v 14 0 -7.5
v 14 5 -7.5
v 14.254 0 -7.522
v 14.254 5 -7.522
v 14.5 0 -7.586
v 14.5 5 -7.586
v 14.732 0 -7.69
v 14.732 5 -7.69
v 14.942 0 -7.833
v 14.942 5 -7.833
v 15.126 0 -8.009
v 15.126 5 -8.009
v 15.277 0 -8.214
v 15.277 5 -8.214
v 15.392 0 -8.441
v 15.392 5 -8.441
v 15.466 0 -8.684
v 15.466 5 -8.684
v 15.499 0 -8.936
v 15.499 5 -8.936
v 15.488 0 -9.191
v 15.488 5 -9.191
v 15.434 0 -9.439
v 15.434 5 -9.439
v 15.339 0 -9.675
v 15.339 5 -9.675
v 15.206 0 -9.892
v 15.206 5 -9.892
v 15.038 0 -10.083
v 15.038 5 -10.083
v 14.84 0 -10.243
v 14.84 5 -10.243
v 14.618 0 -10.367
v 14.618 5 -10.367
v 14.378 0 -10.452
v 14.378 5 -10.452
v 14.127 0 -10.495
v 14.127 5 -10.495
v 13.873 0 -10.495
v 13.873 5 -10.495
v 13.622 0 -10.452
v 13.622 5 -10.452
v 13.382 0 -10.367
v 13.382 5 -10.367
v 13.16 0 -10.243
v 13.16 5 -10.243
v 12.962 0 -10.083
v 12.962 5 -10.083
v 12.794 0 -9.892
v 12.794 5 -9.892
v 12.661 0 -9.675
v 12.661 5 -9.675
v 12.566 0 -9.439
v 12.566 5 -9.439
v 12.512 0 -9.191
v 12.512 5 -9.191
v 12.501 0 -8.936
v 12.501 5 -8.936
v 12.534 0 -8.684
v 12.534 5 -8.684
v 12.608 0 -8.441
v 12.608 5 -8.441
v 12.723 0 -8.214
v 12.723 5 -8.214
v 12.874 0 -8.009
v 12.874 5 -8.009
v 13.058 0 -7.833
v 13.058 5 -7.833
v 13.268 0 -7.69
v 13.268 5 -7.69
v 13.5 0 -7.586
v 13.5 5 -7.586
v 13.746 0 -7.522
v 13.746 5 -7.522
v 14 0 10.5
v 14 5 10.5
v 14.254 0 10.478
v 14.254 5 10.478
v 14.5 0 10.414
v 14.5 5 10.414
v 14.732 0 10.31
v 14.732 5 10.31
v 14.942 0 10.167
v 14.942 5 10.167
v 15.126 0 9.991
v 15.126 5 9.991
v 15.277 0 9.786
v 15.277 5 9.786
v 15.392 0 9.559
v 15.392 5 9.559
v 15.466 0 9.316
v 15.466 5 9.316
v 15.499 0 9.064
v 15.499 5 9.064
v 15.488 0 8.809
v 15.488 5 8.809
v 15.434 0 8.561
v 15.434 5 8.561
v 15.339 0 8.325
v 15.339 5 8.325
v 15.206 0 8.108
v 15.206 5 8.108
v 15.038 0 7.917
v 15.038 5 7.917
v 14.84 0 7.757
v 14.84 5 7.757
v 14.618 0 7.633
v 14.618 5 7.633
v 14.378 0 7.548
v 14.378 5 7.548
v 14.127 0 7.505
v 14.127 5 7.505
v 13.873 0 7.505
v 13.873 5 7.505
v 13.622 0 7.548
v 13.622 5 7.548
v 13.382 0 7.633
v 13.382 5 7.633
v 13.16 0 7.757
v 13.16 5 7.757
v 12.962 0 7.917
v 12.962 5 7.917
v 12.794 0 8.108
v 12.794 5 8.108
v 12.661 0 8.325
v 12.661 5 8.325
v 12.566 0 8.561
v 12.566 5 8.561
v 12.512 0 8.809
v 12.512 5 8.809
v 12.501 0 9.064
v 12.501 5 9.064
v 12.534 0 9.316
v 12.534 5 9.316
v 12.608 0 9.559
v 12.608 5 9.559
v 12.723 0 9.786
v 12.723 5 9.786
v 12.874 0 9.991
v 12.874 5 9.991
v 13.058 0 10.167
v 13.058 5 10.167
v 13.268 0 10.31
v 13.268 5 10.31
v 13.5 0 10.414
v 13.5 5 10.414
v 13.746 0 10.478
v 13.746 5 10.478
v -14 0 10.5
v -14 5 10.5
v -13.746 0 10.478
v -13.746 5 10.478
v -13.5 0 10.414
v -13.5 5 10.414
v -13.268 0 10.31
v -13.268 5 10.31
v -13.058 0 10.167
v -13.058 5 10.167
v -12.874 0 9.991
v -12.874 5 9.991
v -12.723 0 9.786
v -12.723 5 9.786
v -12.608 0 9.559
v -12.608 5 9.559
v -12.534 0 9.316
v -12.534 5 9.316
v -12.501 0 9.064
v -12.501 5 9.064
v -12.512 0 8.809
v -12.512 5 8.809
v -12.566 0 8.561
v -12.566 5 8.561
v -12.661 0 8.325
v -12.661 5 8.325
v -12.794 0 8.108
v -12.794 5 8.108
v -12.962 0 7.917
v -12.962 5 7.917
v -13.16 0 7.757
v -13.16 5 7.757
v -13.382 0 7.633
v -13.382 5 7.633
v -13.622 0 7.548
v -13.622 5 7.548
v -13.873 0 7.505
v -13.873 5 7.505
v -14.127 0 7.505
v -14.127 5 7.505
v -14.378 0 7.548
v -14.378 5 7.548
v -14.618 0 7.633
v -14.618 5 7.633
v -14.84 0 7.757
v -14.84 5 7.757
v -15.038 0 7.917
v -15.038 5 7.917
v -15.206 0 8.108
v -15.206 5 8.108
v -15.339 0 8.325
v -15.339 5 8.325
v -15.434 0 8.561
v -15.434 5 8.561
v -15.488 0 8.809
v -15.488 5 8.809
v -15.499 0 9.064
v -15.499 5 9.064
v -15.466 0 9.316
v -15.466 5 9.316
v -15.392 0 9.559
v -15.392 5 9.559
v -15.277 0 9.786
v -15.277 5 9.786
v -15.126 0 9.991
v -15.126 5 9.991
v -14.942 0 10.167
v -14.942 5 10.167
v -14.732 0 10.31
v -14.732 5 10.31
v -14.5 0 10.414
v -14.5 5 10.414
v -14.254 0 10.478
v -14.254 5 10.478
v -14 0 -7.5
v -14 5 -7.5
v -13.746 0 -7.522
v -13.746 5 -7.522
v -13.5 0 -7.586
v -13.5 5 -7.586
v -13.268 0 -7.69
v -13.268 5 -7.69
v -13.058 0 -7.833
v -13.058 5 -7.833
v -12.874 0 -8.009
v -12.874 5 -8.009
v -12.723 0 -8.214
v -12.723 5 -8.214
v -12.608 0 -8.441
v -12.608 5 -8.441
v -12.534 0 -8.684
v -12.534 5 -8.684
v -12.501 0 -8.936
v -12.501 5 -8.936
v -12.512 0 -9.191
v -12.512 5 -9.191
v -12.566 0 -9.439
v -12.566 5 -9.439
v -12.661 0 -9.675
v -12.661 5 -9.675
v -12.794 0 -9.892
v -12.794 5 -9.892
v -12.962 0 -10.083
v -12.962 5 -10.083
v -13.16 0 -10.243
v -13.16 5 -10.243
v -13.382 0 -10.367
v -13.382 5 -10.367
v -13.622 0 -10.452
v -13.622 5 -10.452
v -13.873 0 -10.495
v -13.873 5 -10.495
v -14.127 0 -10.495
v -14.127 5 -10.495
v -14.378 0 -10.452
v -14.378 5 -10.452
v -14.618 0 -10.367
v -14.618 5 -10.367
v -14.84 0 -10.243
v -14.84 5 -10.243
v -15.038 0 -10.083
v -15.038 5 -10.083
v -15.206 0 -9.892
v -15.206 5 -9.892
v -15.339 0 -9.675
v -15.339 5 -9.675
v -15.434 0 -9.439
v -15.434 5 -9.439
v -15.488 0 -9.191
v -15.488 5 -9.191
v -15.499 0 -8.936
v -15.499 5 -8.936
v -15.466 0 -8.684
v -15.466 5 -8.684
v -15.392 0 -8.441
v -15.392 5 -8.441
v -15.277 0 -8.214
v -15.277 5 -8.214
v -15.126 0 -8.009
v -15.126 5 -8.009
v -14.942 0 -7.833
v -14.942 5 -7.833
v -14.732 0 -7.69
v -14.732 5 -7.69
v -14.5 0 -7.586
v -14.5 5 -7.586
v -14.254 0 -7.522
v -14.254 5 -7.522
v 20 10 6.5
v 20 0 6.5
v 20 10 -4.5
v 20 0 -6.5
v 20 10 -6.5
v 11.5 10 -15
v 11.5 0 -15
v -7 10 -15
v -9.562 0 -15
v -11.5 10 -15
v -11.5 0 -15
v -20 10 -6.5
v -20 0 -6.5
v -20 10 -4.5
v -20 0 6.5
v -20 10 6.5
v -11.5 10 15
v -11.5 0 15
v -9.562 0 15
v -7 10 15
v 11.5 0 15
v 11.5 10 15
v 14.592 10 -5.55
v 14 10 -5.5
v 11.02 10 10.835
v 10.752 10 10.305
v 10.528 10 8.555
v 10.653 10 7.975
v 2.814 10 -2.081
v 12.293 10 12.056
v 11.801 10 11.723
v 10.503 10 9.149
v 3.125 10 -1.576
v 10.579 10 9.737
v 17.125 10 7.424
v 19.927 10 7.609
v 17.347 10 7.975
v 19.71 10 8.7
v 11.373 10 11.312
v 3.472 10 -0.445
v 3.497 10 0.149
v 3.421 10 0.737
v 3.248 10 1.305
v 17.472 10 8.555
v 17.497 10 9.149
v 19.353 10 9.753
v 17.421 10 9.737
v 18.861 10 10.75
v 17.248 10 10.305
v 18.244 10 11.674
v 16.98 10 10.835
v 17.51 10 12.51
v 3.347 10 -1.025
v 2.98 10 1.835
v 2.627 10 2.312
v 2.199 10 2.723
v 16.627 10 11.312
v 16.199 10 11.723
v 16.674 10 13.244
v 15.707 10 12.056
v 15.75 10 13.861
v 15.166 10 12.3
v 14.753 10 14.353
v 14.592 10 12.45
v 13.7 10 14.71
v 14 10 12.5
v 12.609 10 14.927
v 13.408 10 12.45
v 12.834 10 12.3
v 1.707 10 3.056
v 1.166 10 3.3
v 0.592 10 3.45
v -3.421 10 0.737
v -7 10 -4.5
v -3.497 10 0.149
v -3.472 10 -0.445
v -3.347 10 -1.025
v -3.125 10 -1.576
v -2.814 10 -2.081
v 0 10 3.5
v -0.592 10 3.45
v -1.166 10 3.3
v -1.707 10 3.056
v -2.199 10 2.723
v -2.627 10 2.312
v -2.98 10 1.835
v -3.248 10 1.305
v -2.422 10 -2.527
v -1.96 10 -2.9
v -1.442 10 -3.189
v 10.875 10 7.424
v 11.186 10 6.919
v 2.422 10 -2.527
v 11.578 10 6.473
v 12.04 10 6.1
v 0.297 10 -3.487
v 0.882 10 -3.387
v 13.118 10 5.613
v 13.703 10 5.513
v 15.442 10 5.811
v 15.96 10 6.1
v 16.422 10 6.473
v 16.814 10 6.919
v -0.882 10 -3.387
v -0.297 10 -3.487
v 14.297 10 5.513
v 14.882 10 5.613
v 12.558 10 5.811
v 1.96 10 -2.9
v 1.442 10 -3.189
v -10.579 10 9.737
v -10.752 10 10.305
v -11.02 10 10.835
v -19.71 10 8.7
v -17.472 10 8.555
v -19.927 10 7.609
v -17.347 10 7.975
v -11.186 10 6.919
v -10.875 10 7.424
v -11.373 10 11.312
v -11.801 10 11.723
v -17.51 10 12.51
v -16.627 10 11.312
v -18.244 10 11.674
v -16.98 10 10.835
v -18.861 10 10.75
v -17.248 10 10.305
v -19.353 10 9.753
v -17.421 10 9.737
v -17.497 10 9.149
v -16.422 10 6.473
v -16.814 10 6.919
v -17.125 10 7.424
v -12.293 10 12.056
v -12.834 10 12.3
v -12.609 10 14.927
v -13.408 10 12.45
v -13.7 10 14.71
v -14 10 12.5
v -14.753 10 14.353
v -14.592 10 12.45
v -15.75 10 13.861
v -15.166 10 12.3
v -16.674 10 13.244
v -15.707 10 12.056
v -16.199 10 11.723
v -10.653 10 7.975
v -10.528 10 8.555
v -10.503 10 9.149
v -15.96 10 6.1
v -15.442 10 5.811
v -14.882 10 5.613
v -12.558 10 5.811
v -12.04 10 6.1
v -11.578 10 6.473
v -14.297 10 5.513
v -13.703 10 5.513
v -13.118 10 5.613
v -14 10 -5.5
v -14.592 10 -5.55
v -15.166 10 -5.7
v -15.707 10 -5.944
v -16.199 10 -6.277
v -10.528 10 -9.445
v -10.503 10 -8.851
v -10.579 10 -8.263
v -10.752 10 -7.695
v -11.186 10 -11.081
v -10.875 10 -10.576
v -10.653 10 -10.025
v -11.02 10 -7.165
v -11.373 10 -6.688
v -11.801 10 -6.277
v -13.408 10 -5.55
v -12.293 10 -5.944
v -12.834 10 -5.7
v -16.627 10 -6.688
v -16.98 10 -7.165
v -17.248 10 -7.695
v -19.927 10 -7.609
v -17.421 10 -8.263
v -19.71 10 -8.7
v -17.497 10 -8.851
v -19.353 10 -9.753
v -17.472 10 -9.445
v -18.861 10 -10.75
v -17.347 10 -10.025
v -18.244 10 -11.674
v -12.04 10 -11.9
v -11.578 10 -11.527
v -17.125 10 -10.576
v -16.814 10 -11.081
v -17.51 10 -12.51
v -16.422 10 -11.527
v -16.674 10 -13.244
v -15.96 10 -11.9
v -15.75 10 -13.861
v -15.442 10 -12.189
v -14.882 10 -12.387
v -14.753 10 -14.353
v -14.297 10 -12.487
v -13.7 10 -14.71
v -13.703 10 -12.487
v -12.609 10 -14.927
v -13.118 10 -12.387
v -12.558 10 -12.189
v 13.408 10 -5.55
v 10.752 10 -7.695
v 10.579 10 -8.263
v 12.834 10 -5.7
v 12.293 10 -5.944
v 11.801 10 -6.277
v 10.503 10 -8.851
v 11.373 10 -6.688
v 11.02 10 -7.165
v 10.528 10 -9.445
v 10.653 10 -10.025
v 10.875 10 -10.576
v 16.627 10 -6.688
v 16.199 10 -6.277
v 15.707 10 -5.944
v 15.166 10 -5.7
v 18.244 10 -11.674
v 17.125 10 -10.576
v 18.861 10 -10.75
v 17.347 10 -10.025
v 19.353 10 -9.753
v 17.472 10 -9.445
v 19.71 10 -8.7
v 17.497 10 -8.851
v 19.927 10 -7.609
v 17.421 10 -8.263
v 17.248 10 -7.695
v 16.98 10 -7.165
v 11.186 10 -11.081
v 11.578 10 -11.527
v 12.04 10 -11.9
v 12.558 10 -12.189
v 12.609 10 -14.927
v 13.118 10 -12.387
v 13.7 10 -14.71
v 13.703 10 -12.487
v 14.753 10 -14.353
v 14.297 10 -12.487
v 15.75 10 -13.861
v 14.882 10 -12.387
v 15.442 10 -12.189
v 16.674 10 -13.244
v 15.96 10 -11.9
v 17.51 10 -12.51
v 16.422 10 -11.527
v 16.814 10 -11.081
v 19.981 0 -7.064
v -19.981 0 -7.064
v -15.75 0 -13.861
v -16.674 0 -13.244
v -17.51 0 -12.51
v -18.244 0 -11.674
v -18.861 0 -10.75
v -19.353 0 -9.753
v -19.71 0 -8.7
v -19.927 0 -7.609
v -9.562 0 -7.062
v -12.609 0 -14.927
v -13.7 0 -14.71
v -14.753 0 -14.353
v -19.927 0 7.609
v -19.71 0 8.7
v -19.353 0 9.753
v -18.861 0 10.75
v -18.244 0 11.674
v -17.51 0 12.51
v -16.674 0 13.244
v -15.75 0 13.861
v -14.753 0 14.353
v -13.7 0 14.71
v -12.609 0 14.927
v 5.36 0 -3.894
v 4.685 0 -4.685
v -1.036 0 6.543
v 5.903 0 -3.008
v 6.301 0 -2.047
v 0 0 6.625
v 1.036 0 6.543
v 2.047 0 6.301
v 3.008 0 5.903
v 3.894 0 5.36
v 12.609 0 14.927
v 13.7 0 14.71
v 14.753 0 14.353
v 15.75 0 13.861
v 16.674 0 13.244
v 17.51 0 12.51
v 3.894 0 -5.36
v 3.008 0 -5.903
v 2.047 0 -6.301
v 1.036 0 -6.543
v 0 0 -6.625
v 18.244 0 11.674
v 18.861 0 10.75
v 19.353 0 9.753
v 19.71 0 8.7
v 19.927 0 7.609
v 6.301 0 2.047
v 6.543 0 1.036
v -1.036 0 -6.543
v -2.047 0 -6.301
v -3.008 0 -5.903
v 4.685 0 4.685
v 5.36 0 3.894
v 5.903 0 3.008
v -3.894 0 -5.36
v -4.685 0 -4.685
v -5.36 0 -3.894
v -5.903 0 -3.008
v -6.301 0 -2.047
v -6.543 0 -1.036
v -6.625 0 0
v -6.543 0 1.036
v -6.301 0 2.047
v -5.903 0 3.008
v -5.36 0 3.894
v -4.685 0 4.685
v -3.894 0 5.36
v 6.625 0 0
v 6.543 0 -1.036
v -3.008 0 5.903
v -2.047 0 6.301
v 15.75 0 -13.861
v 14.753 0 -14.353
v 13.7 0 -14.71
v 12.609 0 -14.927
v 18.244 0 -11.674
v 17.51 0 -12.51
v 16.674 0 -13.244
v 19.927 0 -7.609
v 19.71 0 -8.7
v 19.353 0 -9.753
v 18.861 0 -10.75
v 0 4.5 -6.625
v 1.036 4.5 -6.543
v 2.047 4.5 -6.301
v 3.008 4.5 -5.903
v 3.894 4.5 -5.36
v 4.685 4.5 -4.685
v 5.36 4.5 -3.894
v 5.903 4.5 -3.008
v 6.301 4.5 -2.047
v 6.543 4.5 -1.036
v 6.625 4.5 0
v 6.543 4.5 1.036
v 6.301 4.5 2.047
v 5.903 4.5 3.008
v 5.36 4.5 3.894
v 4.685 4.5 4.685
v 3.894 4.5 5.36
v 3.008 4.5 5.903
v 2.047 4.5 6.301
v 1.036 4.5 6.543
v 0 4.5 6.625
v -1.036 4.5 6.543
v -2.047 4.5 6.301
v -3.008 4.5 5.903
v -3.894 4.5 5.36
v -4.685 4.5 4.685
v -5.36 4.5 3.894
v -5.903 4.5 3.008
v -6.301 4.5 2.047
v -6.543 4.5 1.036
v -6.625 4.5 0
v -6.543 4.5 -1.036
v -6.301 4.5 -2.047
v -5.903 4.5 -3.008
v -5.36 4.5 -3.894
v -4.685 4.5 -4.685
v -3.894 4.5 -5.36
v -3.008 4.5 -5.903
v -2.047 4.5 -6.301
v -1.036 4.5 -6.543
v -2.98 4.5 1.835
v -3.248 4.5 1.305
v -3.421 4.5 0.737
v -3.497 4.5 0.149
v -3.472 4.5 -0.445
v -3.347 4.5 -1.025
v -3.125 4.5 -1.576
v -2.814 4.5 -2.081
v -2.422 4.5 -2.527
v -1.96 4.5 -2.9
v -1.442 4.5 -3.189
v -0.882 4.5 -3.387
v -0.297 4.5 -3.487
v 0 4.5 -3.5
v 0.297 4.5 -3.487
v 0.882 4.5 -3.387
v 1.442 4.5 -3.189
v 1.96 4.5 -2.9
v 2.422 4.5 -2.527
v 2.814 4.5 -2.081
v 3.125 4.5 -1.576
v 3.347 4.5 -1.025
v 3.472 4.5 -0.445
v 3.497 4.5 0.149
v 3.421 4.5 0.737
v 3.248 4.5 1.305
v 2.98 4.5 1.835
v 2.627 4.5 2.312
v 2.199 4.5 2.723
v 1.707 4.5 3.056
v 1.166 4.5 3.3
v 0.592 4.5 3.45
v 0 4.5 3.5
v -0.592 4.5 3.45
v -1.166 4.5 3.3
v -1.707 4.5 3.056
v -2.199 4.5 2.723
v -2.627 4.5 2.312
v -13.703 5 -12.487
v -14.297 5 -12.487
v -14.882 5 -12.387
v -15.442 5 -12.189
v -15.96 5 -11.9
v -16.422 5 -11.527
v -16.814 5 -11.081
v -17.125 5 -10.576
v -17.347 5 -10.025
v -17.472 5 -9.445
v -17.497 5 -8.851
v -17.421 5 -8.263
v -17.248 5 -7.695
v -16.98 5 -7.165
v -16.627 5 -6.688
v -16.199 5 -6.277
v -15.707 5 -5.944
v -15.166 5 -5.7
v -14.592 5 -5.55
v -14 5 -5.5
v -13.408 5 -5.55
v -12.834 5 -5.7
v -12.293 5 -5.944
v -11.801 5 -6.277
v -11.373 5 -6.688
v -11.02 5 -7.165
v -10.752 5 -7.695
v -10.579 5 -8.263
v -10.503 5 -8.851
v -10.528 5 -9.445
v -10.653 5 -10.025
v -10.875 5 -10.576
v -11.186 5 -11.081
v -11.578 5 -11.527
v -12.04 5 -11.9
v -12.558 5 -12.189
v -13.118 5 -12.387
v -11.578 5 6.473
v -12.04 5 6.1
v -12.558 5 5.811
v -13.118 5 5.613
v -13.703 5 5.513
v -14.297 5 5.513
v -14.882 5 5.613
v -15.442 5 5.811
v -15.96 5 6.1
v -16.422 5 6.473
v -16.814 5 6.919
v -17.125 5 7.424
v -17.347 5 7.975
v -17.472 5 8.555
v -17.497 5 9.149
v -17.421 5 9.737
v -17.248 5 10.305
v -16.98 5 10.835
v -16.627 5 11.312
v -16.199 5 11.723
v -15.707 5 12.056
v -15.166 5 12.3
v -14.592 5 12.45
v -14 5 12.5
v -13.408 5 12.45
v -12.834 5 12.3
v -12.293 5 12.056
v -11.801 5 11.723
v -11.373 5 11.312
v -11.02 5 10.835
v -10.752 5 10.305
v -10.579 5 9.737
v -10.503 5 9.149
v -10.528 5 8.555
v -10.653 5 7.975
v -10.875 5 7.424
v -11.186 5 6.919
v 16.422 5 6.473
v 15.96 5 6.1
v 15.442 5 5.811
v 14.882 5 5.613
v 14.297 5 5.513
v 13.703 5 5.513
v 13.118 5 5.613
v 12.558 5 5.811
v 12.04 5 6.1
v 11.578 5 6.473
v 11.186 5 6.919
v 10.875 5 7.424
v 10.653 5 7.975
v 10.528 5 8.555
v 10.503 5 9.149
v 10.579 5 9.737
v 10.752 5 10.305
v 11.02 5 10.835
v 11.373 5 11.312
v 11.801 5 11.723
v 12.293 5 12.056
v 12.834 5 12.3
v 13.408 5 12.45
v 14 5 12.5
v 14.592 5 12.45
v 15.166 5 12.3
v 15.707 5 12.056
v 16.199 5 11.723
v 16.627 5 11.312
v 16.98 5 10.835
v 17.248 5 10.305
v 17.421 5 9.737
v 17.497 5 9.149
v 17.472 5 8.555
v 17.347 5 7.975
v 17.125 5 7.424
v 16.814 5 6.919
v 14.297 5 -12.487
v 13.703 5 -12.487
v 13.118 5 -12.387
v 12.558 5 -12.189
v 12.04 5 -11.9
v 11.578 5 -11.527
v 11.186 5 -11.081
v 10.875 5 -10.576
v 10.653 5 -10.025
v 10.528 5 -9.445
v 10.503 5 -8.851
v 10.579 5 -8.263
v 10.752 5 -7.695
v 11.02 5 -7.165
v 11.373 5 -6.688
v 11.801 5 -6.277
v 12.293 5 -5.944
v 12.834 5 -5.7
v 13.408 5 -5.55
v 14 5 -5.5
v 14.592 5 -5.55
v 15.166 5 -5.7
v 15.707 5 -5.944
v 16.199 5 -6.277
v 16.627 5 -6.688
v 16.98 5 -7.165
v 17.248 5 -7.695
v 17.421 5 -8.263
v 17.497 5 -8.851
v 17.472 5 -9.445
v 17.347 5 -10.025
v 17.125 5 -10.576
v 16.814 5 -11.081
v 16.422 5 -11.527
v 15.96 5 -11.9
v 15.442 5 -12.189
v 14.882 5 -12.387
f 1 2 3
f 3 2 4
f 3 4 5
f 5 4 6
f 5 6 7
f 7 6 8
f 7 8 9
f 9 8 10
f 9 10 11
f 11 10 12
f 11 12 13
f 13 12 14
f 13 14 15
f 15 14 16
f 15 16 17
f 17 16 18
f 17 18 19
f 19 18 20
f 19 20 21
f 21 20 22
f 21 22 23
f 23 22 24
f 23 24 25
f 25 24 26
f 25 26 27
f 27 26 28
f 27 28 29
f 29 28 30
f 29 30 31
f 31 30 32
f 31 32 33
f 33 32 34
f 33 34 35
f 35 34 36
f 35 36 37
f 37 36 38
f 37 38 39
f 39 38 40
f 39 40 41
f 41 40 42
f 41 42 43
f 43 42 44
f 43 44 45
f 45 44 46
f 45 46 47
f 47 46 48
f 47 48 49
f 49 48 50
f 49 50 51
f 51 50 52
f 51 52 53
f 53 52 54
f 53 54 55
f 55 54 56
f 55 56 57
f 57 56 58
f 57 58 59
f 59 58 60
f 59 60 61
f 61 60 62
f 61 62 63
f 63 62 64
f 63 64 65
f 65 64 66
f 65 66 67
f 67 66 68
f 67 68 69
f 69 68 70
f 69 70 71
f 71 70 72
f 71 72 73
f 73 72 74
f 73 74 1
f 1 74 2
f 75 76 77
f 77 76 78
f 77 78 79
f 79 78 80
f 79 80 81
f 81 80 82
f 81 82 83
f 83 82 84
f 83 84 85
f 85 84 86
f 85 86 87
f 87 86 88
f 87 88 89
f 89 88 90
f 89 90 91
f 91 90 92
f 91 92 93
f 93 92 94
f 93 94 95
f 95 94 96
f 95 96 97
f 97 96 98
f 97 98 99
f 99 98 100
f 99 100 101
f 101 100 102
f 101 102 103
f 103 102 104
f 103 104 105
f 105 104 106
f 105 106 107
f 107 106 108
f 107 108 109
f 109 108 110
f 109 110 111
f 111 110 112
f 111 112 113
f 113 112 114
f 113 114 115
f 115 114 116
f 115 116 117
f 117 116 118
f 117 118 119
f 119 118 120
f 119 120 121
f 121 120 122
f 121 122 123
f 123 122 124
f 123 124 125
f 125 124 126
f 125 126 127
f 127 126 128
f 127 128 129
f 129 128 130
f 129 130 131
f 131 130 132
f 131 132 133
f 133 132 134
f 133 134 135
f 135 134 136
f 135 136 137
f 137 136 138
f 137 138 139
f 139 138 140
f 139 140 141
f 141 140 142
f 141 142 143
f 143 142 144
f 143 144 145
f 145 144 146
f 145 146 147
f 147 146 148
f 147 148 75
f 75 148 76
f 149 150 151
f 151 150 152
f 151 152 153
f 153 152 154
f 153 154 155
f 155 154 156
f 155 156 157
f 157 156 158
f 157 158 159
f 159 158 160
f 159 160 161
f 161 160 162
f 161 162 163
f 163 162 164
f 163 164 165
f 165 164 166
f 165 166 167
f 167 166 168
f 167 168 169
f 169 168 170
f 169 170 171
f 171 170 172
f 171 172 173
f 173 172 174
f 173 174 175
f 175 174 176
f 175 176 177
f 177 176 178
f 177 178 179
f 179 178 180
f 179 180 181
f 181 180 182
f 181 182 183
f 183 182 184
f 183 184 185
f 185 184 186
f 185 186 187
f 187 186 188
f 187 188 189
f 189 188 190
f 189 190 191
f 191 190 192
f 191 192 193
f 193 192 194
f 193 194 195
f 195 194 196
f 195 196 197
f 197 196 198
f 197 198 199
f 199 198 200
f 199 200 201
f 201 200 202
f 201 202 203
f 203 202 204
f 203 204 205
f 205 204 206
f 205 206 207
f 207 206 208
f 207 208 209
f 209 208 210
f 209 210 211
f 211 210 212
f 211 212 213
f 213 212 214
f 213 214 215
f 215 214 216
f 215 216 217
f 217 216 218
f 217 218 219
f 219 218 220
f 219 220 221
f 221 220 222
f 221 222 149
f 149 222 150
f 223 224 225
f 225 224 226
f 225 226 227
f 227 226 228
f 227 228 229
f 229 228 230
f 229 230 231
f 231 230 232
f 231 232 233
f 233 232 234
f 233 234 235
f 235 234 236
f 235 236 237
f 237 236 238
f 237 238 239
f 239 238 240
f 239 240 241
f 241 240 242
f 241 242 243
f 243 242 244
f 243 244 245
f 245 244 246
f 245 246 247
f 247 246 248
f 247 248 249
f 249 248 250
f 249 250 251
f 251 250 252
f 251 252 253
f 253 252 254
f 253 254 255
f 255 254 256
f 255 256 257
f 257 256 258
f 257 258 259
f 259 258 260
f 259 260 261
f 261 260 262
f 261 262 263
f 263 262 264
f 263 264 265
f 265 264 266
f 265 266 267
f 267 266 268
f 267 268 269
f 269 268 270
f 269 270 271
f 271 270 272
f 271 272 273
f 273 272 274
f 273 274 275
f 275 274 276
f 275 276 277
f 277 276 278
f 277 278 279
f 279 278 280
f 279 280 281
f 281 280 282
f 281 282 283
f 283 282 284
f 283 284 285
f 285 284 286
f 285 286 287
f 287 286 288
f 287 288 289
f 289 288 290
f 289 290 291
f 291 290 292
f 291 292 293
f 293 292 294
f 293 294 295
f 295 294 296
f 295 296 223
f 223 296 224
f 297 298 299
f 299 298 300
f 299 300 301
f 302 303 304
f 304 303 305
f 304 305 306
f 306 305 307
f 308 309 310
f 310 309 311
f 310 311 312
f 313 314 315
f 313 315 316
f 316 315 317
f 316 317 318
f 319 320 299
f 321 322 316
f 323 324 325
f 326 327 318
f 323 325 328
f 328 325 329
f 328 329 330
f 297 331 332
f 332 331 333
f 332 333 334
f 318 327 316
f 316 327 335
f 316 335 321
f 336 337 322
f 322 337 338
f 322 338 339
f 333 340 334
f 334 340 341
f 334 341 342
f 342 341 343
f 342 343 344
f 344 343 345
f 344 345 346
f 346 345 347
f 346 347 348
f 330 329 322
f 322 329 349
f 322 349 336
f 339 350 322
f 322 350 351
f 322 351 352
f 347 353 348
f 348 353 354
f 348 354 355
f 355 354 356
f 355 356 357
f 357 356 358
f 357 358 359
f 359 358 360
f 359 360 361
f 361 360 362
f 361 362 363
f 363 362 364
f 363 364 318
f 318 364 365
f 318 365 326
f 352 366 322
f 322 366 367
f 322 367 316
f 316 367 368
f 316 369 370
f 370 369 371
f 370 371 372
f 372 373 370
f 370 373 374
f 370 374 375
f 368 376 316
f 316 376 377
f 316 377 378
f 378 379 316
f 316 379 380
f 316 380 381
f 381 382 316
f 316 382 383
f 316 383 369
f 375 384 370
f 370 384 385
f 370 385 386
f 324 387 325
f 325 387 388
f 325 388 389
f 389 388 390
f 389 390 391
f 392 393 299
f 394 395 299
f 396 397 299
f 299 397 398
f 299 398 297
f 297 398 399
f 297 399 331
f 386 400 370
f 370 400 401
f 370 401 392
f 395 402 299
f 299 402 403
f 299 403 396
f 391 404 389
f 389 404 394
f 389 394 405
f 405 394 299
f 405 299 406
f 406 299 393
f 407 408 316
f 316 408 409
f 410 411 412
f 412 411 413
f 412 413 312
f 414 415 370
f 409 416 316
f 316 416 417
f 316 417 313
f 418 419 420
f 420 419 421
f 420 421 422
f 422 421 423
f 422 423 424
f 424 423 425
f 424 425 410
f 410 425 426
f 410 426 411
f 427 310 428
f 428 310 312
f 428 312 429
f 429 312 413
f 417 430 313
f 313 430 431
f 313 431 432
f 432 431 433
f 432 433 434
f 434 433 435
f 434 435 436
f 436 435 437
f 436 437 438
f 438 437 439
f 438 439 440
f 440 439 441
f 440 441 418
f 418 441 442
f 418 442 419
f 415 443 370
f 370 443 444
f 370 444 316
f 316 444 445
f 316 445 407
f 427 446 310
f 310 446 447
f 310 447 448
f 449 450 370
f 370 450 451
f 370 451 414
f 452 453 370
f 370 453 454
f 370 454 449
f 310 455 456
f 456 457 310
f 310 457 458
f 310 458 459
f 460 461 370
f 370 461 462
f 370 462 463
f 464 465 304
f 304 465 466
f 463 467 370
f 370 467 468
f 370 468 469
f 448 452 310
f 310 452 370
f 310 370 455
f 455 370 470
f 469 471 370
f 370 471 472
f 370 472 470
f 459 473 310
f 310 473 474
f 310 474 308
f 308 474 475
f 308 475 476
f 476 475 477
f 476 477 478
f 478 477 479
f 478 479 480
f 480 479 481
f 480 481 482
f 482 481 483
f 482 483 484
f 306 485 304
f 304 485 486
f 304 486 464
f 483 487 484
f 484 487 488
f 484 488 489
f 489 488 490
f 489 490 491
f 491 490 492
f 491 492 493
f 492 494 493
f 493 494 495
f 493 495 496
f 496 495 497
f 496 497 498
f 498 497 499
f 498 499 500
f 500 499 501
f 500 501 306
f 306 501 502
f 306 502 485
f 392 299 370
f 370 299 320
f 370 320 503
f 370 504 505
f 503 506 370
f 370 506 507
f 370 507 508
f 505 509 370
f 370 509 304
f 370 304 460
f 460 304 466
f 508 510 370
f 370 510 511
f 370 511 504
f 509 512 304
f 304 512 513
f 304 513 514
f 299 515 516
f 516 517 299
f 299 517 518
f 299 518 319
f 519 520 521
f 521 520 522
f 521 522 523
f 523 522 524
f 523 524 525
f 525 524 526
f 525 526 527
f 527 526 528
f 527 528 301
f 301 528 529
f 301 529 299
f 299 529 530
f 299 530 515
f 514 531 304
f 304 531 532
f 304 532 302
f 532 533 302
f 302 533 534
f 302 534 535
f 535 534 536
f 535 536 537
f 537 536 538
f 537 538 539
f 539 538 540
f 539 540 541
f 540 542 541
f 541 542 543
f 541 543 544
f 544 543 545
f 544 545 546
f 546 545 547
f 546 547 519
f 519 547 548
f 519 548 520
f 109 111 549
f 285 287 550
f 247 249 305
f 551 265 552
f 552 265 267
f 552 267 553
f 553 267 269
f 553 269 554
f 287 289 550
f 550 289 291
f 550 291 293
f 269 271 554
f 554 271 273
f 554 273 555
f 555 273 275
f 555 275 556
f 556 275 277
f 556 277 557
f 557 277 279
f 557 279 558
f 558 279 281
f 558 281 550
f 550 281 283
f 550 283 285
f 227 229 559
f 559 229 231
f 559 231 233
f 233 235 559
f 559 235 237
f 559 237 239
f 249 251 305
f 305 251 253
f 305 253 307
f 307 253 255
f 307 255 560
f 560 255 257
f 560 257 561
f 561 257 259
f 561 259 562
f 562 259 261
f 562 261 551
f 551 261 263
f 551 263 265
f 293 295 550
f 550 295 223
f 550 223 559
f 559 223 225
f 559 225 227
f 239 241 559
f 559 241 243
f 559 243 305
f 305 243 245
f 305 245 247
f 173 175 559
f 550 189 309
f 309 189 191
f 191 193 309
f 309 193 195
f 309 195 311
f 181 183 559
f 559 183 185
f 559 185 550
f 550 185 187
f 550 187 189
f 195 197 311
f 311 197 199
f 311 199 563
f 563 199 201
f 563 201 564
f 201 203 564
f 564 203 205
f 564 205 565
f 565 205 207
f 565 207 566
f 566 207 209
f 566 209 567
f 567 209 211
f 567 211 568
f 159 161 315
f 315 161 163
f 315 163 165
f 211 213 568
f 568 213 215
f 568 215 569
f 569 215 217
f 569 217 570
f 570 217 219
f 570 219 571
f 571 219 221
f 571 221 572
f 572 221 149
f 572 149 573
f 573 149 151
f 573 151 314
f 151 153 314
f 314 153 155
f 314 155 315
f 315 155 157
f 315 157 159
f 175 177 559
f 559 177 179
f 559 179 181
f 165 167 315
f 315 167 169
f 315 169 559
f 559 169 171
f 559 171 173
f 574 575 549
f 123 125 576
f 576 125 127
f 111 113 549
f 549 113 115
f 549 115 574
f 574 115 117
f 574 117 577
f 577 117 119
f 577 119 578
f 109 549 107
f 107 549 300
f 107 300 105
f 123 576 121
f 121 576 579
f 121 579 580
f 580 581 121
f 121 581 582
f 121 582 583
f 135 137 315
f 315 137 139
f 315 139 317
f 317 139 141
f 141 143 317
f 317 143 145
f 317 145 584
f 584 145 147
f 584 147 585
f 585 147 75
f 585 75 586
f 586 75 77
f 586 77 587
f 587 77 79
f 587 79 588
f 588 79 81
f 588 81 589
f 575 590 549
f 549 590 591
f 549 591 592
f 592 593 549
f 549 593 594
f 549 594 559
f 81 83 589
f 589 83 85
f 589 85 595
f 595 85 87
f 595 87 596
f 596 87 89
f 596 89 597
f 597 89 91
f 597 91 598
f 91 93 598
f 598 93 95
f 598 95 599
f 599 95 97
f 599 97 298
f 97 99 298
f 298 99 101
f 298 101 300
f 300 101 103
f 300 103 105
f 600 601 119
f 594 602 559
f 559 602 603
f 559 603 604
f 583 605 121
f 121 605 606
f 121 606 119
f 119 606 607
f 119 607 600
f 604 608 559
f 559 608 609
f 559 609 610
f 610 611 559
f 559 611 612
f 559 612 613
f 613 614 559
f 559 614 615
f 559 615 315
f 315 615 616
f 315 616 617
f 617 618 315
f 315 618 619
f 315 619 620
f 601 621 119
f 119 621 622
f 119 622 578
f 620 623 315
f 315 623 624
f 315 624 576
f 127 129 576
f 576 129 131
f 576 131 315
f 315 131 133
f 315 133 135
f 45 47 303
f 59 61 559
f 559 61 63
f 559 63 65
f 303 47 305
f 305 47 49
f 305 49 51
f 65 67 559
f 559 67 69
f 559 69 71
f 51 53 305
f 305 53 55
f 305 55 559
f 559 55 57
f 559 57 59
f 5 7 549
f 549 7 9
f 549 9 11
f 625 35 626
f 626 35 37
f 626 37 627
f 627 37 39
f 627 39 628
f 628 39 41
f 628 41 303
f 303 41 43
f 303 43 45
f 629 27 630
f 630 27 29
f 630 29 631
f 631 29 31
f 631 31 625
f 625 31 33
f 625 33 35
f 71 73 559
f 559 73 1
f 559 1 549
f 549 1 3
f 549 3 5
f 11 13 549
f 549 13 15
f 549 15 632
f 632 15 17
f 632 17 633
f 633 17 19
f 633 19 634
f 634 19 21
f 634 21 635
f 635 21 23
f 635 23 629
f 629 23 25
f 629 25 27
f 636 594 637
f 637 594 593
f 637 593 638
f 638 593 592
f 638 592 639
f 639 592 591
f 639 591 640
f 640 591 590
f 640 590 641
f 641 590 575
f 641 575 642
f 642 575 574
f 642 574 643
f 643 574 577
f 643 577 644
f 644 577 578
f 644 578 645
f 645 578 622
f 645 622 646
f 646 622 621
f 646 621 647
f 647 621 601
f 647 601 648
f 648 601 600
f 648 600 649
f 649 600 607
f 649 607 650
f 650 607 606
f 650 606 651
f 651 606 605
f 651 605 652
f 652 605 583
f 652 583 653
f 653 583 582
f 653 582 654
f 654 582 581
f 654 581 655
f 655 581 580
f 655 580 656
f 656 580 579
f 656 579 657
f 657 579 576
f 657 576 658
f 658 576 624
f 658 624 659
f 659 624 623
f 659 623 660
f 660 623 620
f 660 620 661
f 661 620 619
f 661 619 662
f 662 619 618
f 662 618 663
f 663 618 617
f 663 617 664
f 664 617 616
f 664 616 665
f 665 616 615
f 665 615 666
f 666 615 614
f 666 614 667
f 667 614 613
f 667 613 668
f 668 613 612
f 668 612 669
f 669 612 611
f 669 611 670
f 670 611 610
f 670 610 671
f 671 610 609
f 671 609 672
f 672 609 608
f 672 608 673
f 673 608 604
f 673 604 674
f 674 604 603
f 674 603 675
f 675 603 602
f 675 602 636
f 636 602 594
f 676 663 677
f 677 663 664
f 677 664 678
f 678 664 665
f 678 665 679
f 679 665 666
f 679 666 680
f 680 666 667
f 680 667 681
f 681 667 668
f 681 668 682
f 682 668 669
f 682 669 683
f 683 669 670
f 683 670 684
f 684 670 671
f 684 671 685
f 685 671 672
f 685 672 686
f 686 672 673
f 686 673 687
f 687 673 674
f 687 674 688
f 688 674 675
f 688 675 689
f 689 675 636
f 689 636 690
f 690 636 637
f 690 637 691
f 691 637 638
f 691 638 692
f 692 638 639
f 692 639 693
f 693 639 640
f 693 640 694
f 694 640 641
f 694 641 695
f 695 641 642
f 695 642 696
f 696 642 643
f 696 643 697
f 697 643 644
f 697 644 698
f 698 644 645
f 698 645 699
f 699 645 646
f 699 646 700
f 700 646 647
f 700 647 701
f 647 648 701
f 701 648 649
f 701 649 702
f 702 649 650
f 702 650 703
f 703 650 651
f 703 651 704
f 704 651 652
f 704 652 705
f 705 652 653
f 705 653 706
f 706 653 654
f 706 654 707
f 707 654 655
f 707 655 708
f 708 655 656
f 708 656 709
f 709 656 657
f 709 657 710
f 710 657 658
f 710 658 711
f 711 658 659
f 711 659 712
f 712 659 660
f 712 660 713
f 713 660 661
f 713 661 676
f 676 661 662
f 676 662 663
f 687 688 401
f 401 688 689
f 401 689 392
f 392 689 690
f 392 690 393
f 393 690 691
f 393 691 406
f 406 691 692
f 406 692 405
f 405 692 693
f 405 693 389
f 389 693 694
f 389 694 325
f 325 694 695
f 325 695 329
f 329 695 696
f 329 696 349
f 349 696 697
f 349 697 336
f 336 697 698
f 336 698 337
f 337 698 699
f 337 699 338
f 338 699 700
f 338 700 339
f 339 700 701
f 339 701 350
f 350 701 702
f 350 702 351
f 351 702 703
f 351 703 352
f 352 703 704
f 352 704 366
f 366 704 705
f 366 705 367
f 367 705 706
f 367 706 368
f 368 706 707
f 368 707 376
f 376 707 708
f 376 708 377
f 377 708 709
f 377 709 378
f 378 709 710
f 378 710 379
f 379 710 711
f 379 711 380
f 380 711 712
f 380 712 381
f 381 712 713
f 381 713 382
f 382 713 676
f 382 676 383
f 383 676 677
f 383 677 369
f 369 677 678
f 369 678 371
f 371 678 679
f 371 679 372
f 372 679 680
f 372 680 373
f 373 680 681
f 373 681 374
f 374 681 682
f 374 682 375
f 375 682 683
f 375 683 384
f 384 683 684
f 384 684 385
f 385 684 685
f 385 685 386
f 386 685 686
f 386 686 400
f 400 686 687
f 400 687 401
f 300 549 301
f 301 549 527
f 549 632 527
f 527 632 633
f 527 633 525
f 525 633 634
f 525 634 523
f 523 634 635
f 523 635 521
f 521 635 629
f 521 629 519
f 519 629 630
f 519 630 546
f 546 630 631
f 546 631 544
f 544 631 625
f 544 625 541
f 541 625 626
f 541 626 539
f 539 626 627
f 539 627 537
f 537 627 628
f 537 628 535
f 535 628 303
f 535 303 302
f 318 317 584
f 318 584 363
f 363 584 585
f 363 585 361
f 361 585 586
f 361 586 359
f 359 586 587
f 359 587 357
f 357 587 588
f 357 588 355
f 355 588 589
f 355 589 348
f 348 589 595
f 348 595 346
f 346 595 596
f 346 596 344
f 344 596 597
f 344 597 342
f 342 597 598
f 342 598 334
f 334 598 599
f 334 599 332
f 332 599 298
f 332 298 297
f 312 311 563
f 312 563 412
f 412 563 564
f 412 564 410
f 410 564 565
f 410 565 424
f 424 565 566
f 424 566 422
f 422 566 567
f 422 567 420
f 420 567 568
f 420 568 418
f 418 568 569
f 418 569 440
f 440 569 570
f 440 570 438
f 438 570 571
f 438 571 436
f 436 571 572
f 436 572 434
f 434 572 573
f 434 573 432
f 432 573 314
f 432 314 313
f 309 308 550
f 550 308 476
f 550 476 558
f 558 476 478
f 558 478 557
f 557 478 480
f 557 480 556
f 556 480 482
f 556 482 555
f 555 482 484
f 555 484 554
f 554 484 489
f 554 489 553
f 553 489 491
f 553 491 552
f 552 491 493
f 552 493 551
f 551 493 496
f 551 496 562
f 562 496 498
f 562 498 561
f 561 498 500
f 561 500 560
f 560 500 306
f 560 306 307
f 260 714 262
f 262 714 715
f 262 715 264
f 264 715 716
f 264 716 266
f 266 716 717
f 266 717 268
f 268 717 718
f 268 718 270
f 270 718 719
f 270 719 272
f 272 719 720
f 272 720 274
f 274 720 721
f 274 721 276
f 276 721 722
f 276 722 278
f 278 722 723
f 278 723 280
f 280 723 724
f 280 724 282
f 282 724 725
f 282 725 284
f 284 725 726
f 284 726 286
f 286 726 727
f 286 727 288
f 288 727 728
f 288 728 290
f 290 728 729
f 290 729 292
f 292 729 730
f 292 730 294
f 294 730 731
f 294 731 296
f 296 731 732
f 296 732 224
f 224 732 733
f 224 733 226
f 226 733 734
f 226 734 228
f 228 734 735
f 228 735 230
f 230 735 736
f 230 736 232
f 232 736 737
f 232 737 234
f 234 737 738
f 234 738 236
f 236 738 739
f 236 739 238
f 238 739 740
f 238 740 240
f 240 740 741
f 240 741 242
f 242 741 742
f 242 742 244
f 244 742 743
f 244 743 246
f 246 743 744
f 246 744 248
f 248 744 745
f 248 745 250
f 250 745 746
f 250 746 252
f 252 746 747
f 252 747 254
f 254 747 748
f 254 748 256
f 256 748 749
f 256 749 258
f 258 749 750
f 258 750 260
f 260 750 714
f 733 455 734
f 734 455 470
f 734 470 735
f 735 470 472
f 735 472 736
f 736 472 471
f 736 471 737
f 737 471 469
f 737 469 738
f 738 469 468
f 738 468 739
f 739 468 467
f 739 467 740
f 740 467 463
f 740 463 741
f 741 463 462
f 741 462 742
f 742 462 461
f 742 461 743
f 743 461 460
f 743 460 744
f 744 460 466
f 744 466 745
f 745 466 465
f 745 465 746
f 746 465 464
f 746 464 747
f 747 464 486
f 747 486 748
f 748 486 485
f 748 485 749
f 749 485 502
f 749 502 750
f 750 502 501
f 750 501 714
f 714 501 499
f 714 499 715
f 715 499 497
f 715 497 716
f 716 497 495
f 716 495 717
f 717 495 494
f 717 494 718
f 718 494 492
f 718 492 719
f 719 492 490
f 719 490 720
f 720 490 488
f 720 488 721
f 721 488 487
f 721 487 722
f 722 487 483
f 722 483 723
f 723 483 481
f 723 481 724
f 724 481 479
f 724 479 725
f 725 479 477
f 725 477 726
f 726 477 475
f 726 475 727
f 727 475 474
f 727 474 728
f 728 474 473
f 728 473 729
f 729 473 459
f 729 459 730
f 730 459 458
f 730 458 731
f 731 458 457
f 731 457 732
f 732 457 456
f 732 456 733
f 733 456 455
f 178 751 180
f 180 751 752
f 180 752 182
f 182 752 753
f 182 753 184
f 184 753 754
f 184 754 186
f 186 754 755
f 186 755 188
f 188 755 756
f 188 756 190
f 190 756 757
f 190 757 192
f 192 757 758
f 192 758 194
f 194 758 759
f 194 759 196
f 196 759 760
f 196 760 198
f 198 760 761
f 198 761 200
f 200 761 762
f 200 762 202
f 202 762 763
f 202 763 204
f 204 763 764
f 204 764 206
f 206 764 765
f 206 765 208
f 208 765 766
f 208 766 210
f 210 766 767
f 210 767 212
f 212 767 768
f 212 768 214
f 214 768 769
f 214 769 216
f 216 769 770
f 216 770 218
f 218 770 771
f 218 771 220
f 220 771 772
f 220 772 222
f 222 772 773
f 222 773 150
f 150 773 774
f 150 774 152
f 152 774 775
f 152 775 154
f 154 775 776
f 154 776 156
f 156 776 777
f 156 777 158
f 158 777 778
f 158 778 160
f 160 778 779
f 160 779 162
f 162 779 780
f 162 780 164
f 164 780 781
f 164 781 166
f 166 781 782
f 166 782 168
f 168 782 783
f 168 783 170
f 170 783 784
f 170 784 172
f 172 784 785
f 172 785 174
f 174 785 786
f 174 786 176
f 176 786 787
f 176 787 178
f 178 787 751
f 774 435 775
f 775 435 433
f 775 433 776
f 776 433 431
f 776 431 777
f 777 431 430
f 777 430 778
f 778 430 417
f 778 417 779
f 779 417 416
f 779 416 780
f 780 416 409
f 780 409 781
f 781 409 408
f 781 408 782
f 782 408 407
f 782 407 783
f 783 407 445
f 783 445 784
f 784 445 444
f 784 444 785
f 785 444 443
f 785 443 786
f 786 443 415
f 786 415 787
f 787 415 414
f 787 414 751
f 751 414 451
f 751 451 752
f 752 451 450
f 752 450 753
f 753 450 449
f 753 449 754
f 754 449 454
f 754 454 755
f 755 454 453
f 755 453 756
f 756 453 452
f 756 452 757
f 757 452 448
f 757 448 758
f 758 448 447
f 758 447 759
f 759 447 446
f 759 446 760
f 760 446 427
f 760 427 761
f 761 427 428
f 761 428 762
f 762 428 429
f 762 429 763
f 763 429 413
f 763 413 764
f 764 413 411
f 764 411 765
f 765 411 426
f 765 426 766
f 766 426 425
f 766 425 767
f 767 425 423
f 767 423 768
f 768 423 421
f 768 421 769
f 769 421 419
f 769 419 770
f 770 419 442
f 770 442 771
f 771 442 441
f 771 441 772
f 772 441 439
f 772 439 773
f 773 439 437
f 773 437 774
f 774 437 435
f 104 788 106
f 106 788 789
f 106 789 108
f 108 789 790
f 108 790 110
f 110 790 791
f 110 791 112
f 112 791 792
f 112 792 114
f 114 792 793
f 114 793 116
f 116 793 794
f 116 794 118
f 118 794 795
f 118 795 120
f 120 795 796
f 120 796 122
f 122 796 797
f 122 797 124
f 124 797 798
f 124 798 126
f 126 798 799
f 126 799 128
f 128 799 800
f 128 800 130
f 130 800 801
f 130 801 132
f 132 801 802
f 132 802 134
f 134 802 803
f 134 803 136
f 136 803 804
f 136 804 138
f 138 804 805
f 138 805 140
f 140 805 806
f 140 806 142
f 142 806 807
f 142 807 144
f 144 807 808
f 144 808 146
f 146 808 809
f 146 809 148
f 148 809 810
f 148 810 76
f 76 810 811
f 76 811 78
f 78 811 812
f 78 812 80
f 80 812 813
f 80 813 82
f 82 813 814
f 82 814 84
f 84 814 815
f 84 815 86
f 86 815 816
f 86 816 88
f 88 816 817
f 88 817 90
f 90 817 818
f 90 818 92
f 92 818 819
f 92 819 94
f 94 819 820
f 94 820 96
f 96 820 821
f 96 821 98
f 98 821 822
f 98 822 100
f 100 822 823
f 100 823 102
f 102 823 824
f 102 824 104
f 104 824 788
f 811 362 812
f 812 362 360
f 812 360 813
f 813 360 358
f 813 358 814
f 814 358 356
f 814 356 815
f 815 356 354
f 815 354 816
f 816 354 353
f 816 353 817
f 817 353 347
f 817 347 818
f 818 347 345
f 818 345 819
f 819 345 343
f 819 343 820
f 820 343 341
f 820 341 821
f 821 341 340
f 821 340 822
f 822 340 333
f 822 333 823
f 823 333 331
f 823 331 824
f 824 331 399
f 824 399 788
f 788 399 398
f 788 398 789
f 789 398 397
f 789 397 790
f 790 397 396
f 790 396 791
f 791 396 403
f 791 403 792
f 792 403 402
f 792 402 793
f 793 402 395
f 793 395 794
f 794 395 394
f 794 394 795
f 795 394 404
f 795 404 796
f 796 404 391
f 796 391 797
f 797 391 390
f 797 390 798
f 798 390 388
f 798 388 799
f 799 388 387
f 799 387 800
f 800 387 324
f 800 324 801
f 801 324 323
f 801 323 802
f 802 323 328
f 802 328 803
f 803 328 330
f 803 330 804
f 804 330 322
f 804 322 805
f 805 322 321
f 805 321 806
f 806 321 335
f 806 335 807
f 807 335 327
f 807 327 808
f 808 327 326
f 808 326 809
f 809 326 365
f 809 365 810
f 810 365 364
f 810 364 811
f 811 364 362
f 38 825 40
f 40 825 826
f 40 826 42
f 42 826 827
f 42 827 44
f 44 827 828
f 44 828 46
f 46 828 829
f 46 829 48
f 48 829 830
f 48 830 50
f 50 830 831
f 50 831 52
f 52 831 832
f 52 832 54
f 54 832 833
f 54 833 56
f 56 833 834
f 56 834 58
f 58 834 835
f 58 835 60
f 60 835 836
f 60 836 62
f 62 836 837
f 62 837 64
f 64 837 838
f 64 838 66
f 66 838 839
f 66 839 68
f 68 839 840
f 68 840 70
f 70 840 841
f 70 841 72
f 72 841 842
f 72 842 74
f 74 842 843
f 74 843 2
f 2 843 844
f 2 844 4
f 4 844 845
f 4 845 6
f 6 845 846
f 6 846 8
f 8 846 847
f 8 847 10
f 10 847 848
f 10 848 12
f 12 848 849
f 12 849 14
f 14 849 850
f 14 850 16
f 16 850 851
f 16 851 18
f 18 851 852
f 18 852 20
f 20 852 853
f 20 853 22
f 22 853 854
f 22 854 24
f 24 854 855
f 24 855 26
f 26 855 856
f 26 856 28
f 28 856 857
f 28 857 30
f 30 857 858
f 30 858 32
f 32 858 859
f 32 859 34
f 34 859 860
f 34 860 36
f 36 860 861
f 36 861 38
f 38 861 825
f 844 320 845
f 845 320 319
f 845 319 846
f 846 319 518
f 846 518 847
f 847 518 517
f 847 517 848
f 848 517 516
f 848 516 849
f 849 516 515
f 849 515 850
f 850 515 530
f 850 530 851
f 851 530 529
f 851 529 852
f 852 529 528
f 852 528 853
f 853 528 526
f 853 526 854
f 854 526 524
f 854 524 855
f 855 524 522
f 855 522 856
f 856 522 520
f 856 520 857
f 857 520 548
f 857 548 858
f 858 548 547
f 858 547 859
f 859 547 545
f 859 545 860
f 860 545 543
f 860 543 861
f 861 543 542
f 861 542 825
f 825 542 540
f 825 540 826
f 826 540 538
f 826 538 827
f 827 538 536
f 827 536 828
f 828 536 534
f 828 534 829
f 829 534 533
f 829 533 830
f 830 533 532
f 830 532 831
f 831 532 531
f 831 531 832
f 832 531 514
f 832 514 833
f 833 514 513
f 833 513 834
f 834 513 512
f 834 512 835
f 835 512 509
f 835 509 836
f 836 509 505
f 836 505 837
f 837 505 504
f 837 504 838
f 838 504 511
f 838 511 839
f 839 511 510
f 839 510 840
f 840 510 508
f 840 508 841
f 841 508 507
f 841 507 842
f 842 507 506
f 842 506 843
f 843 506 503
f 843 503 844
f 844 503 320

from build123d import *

# Parameters (mm, degrees)
SKETCH1_W             = 40
SKETCH1_H             = 30
BOSS_EXTRUDE1_DEPTH   = 10
SKETCH3_R             = 6.625
CUT_EXTRUDE1_DEPTH    = 4.5
SKETCH4_R             = 3.5
CUT_EXTRUDE2_DEPTH    = 27.925824036
F_3_0MM_DOWEL_HOLE1_D = 3
FILLET1_R             = 8.5
SKETCH9_R             = 3.5
CUT_EXTRUDE3_DEPTH    = 5


with BuildPart() as part:
    # Sketch1 → Boss-Extrude1 (new body)
    with BuildSketch(Plane(origin=(0, 0, 0), x_dir=(1, 0, 0), z_dir=(0, 1, 0))):
        Rectangle(SKETCH1_W, SKETCH1_H)
    extrude(amount=BOSS_EXTRUDE1_DEPTH)

    # Sketch3 → Cut-Extrude1 (cut)
    with BuildSketch(Plane.XZ):
        with Locations(Location((0, 0, 0), (0, 0, 270))):
            Circle(SKETCH3_R)
    extrude(amount=-CUT_EXTRUDE1_DEPTH, mode=Mode.SUBTRACT)

    # Sketch4 → Cut-Extrude2 (cut, through all)
    with BuildSketch(Plane(origin=(0, 10, 0), x_dir=(1, 0, 0), z_dir=(0, 1, 0))):
        with Locations(Location((0, 0, 0), (0, 0, 270))):
            Circle(SKETCH4_R)
    extrude(amount=-CUT_EXTRUDE2_DEPTH, mode=Mode.SUBTRACT)

    # Ø3.0mm Dowel Hole1 (through all)
    with Locations(Plane(origin=(0, 10, 0), x_dir=(1, 0, 0), z_dir=(0, 1, 0))):
        with Locations((-14, 9), (-14, -9), (14, -9), (14, 9)):
            Hole(F_3_0MM_DOWEL_HOLE1_D / 2)

    # Fillet1
    fillet1_edges = [part.edges().sort_by_distance(p)[0] for p in [
        (20, 5, 15),
        (-20, 5, 15),
        (-20, 5, -15),
        (20, 5, -15),
    ]]
    fillet(fillet1_edges, radius=FILLET1_R)

    # Sketch9 → Cut-Extrude3 (cut)
    with BuildSketch(Plane(origin=(0, 10, 0), x_dir=(1, 0, 0), z_dir=(0, 1, 0))):
        with Locations(Location((14, -9, 0), (0, 0, 270))):
            Circle(SKETCH9_R)
        with Locations(Location((-14, -9, 0), (0, 0, 270))):
            Circle(SKETCH9_R)
        with Locations(Location((-14, 9, 0), (0, 0, 270))):
            Circle(SKETCH9_R)
        with Locations(Location((14, 9, 0), (0, 0, 270))):
            Circle(SKETCH9_R)
    extrude(amount=-CUT_EXTRUDE3_DEPTH, mode=Mode.SUBTRACT)


solid = part.part
